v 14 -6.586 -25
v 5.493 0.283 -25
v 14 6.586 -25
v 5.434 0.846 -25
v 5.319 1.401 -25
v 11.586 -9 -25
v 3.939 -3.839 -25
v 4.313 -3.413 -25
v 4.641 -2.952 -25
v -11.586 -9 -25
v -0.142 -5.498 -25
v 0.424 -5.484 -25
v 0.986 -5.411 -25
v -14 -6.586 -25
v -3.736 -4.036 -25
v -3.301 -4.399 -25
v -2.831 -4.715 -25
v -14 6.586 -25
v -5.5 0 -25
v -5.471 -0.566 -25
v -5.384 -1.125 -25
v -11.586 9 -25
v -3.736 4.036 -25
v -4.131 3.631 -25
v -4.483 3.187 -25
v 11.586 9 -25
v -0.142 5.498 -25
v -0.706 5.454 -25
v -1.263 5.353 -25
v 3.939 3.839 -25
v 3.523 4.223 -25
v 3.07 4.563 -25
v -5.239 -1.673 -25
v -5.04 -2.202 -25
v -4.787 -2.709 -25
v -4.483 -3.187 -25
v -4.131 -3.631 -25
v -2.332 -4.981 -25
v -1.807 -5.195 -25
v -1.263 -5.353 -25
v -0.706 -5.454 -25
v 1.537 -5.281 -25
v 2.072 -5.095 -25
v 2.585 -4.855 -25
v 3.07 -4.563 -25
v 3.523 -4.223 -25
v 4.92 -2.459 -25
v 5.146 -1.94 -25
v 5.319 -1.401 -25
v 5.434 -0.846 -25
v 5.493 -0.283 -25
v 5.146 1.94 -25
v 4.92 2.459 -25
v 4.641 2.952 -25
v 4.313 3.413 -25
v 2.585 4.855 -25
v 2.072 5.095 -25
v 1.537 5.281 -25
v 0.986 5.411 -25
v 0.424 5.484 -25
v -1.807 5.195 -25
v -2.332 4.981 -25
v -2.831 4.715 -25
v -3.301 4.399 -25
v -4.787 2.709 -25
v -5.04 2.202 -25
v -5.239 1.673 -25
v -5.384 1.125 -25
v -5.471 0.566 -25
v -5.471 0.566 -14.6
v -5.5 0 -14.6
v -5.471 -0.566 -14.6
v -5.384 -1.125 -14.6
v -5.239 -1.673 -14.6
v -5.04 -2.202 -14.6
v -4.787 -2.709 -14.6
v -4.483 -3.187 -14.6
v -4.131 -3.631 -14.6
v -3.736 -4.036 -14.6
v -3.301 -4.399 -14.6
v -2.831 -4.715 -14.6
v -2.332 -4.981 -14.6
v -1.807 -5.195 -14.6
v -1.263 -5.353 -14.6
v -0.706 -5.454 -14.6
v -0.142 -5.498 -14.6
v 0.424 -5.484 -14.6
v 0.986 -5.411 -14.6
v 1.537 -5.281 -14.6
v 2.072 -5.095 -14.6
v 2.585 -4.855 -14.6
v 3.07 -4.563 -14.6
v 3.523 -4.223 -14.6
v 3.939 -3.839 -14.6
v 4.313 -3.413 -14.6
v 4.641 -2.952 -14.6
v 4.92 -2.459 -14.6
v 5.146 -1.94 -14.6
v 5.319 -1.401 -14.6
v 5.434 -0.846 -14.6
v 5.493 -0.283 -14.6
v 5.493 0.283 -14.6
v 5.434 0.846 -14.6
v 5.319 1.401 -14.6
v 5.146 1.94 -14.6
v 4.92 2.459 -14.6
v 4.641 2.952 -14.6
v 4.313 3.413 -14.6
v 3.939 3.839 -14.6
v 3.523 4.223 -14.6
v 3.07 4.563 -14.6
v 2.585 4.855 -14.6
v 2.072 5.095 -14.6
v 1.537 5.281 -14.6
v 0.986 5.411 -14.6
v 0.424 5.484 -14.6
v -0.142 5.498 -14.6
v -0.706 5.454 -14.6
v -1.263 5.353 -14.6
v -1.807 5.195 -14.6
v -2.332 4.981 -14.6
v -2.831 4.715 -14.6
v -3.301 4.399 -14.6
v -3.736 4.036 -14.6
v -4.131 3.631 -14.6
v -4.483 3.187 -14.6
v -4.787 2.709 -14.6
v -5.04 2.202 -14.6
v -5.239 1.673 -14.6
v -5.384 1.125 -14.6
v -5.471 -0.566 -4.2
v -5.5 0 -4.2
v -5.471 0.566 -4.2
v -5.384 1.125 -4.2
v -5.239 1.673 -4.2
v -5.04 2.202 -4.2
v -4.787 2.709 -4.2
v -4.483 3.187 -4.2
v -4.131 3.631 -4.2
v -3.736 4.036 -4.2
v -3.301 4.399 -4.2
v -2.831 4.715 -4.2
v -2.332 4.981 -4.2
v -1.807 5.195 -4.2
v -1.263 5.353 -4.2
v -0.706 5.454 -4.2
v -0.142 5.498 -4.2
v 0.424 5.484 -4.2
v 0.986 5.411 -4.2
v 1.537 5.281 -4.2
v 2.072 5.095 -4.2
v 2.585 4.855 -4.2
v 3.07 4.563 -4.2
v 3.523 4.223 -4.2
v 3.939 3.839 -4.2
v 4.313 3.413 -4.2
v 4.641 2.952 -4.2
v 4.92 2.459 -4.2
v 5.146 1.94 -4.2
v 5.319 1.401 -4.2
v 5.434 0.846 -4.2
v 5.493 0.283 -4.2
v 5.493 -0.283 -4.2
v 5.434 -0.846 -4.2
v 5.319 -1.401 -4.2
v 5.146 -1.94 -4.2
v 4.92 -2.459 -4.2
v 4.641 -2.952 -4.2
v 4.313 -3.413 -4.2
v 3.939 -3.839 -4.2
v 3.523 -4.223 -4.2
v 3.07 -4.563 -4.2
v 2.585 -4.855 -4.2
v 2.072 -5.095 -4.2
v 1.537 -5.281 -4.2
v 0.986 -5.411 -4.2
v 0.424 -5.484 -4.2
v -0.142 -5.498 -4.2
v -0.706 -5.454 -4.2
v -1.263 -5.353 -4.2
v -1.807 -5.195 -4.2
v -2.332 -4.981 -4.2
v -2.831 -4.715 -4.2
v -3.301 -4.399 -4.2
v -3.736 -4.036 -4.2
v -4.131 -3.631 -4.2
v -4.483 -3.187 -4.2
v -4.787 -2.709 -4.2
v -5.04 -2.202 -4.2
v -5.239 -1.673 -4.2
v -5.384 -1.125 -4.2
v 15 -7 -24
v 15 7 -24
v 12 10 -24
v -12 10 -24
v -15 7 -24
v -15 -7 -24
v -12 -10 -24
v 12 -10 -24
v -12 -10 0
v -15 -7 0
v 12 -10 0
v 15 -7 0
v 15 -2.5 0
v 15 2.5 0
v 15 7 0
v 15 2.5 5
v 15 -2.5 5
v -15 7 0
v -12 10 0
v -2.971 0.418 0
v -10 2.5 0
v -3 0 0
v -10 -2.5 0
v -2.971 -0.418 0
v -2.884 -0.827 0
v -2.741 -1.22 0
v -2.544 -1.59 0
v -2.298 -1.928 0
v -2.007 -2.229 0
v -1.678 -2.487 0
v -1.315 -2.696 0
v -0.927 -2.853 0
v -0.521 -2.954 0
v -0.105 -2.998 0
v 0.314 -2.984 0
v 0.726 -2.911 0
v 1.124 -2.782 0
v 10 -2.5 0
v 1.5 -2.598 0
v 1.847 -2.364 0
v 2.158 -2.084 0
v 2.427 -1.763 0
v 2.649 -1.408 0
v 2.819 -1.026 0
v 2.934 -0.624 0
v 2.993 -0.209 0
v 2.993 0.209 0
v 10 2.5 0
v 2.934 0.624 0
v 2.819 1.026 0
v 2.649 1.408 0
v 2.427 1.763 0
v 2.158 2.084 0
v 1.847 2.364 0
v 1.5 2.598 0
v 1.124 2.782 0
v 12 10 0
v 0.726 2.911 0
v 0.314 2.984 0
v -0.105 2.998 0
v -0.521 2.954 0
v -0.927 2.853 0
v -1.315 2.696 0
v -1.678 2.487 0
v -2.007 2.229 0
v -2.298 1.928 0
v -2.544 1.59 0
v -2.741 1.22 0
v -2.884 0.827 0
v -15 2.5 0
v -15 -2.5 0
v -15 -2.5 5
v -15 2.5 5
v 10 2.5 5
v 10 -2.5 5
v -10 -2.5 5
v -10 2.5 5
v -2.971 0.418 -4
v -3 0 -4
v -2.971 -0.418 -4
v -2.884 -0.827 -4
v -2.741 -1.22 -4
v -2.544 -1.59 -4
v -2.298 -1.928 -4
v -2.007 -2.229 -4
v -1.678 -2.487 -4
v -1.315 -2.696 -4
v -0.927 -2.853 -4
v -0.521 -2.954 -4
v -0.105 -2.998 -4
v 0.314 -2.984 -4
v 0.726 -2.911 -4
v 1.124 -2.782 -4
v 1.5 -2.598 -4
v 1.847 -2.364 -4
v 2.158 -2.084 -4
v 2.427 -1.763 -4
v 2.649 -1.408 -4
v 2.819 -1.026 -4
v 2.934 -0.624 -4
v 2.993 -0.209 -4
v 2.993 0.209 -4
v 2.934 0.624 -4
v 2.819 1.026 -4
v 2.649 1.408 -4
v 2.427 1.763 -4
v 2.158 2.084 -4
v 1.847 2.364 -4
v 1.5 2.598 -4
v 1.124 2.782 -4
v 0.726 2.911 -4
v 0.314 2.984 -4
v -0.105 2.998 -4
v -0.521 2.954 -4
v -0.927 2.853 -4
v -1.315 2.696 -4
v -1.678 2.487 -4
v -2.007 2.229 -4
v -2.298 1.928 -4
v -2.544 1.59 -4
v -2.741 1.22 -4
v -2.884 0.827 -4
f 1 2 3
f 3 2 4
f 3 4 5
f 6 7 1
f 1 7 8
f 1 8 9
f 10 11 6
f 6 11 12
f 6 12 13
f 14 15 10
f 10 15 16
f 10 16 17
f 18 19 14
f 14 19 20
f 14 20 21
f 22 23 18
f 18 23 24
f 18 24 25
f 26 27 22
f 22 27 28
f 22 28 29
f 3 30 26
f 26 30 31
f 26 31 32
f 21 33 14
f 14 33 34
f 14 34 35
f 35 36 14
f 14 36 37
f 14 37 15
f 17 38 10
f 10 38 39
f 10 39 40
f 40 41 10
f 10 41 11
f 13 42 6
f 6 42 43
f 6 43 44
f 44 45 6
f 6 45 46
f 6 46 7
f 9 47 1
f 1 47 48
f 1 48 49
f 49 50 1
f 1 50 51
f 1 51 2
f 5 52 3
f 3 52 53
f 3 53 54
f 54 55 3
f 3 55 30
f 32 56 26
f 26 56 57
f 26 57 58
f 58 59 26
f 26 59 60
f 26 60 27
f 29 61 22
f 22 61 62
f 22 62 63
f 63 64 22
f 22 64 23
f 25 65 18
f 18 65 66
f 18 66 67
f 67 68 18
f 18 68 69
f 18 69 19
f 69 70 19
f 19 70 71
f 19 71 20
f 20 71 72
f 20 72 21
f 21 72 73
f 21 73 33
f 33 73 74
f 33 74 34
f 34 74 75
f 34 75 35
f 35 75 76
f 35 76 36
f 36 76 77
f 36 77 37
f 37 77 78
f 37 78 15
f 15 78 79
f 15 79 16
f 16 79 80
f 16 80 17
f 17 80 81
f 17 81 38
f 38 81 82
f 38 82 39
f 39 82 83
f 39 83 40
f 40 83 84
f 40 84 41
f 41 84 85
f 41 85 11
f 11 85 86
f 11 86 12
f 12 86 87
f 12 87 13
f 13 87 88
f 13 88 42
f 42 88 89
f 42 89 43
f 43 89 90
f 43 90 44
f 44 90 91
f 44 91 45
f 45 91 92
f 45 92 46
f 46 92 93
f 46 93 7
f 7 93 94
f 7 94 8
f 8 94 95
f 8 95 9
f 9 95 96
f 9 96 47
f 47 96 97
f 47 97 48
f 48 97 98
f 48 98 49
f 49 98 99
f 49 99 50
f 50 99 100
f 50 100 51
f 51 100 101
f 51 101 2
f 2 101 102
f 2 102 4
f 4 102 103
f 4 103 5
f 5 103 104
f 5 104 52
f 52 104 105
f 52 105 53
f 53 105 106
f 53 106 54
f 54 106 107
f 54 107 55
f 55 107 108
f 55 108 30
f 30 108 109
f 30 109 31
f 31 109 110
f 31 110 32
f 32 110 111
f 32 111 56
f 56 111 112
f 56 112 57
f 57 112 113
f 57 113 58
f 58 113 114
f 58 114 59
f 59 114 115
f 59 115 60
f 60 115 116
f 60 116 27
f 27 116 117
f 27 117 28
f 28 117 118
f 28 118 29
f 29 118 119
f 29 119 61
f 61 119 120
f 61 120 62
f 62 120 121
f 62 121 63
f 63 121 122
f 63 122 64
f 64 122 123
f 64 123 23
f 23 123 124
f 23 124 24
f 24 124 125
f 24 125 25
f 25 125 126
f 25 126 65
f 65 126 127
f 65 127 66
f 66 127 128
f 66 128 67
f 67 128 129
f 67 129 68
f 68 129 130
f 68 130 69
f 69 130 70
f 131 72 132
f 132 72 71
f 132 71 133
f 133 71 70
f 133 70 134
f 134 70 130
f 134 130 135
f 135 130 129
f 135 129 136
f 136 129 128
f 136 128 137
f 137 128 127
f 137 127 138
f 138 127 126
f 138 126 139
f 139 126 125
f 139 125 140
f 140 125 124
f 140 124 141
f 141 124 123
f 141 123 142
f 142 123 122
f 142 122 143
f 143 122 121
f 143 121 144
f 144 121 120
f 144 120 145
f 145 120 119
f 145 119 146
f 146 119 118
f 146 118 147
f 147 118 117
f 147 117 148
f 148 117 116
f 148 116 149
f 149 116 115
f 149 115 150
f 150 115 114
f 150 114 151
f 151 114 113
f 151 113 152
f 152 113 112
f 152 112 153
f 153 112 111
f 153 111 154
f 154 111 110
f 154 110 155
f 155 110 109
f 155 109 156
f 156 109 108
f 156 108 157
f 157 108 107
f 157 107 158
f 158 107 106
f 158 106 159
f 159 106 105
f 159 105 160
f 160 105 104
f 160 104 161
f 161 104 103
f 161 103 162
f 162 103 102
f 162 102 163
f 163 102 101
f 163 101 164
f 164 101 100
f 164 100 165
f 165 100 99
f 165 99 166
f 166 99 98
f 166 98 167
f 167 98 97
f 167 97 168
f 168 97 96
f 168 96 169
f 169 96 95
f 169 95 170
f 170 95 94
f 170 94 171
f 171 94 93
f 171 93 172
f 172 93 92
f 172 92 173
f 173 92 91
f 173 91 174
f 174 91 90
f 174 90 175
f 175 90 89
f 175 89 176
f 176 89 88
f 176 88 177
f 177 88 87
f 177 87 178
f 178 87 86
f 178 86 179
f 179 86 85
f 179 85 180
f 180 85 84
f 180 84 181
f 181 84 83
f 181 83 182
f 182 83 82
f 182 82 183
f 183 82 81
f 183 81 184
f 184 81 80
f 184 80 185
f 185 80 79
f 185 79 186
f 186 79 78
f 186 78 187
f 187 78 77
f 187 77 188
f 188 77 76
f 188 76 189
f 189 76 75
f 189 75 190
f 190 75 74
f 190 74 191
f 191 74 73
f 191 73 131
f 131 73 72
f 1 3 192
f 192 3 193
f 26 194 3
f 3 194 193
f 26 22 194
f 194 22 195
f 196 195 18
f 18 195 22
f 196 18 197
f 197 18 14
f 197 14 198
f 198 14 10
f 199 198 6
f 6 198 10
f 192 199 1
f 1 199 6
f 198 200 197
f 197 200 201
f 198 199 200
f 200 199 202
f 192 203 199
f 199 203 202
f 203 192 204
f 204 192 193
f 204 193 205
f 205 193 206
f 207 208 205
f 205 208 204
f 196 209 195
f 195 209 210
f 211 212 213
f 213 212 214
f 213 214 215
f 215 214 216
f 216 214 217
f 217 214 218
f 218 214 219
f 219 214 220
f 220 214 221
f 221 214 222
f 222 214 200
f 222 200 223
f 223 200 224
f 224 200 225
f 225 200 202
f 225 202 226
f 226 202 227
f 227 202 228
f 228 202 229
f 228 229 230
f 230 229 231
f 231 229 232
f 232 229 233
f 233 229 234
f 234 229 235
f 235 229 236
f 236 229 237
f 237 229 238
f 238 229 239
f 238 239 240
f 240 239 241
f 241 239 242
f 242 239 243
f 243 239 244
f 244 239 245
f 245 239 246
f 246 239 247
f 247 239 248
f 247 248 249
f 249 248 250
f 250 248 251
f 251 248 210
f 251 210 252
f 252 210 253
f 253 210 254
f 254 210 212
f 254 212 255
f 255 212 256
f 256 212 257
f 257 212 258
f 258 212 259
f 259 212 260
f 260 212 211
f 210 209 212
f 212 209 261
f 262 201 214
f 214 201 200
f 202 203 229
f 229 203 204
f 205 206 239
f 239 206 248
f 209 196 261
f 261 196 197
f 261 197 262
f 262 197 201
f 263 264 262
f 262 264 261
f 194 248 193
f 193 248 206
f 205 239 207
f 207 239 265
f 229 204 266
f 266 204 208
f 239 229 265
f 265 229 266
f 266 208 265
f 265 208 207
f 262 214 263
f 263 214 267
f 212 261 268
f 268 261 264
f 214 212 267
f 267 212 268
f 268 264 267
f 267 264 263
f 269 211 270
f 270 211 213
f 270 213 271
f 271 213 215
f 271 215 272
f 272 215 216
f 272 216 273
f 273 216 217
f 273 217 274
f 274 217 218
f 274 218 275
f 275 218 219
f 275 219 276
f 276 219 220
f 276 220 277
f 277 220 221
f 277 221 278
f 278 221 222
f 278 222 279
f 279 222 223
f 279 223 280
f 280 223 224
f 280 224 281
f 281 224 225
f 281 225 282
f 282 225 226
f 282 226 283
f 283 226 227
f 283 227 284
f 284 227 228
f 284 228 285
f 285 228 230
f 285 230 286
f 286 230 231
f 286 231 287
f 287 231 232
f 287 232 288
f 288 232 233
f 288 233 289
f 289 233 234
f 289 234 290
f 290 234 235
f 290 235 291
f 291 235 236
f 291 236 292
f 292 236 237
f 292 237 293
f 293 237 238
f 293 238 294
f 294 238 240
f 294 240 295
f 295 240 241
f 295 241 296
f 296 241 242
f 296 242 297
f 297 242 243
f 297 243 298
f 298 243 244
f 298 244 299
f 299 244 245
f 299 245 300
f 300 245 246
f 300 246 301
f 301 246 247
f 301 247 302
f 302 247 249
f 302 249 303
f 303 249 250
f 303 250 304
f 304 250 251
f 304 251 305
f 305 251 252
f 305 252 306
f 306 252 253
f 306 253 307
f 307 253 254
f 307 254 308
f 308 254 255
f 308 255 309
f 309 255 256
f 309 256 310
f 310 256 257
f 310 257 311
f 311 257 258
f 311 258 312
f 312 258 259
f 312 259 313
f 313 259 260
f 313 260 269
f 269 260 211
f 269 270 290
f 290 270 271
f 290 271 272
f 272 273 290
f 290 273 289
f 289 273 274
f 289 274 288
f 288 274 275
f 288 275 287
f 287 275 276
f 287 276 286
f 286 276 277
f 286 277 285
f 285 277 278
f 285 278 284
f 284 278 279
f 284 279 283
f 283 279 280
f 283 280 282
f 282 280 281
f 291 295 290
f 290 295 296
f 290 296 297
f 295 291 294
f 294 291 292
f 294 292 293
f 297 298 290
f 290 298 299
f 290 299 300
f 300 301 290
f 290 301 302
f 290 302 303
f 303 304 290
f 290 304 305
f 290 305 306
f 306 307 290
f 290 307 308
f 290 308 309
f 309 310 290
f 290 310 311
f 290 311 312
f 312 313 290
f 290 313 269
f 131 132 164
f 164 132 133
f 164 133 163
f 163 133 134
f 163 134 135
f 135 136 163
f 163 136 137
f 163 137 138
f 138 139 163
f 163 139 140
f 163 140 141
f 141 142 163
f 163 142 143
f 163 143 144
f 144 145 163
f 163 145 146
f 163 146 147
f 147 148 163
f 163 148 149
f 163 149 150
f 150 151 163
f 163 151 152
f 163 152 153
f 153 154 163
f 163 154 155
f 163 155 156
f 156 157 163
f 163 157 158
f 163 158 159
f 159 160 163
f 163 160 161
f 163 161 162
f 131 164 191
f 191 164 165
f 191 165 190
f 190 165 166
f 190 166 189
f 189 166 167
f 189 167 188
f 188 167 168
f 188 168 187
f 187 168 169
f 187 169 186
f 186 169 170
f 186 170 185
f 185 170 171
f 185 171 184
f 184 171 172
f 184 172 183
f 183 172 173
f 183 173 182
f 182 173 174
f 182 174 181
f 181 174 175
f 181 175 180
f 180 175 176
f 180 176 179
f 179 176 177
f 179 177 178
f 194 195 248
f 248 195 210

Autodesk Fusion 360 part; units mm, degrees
sketch "Szkic1" plane through (0, 0, 0) normal (0, 0, 1) x (1, 0, 0)
  line L0 (-15, 10) -> (15, 10)
  line L1 (15, 10) -> (15, -10)
  line L2 (15, -10) -> (-15, -10)
  line L3 (-15, -10) -> (-15, 10)
  circle A0 centre (0, 0) radius 3
  circle A1 centre (0, 0) radius 5.5
  line L4 (-15, 2.5) -> (-15, -2.5)
  line L5 (-15, -2.5) -> (15, -2.5)
  line L6 (15, -2.5) -> (15, 2.5)
  line L7 (15, 2.5) -> (-15, 2.5)
  line L8 (-10, 2.5) -> (10, 2.5)
  line L9 (10, 2.5) -> (10, -2.5)
  line L10 (10, -2.5) -> (-10, -2.5)
  line L11 (-10, -2.5) -> (-10, 2.5)
  dimension "d1" = 6
  dimension "d2" = 11
extrude "Wyciągnięcie proste1" add sketch "Szkic1" against normal blind 25 contours L0 L1 L3 A1 L7 L8 | L3 L4 L5 L7 L11 | L1 L5 L6 L7 L9 | L1 L2 L3 A1 L5 L10 | A1 L5 L7 L8 L10 L11 | A1 L5 L7 L8 L9 L10
extrude "Wyciągnięcie proste2" add sketch "Szkic1" against normal blind 4.2 contours A0 A1 L5 L7 L8 L10 | A0 A1 L7 L8 | A0 A1 L5 L7 L8 L10 | A0 A1 L5 L10 | A0 L5 L7 L8 L10 | A0 L7 L8 | A0 L5 L10
extrude "Wyciągnięcie proste3" cut sketch "Szkic1" against normal blind 4 contours A0 L5 L7 L8 L10 | A0 L7 L8 | A0 L5 L10
extrude "Wyciągnięcie proste4" add sketch "Szkic1" along normal blind 5 contours L3 L4 L5 L7 L11 | L1 L5 L6 L7 L9
chamfer "Fazowanie1" distance 3 angle 45 4 edges at (15, -10, -12.5) (15, 10, -12.5) (-15, -10, -12.5) (-15, 10, -12.5)
chamfer "Fazowanie2" distance 1 angle 45 1 faces at (11.8333, 0, -25)
delete_face "Usuń powierzchnię1" 1 faces at (6.159, 0.3074, -24.6667)
